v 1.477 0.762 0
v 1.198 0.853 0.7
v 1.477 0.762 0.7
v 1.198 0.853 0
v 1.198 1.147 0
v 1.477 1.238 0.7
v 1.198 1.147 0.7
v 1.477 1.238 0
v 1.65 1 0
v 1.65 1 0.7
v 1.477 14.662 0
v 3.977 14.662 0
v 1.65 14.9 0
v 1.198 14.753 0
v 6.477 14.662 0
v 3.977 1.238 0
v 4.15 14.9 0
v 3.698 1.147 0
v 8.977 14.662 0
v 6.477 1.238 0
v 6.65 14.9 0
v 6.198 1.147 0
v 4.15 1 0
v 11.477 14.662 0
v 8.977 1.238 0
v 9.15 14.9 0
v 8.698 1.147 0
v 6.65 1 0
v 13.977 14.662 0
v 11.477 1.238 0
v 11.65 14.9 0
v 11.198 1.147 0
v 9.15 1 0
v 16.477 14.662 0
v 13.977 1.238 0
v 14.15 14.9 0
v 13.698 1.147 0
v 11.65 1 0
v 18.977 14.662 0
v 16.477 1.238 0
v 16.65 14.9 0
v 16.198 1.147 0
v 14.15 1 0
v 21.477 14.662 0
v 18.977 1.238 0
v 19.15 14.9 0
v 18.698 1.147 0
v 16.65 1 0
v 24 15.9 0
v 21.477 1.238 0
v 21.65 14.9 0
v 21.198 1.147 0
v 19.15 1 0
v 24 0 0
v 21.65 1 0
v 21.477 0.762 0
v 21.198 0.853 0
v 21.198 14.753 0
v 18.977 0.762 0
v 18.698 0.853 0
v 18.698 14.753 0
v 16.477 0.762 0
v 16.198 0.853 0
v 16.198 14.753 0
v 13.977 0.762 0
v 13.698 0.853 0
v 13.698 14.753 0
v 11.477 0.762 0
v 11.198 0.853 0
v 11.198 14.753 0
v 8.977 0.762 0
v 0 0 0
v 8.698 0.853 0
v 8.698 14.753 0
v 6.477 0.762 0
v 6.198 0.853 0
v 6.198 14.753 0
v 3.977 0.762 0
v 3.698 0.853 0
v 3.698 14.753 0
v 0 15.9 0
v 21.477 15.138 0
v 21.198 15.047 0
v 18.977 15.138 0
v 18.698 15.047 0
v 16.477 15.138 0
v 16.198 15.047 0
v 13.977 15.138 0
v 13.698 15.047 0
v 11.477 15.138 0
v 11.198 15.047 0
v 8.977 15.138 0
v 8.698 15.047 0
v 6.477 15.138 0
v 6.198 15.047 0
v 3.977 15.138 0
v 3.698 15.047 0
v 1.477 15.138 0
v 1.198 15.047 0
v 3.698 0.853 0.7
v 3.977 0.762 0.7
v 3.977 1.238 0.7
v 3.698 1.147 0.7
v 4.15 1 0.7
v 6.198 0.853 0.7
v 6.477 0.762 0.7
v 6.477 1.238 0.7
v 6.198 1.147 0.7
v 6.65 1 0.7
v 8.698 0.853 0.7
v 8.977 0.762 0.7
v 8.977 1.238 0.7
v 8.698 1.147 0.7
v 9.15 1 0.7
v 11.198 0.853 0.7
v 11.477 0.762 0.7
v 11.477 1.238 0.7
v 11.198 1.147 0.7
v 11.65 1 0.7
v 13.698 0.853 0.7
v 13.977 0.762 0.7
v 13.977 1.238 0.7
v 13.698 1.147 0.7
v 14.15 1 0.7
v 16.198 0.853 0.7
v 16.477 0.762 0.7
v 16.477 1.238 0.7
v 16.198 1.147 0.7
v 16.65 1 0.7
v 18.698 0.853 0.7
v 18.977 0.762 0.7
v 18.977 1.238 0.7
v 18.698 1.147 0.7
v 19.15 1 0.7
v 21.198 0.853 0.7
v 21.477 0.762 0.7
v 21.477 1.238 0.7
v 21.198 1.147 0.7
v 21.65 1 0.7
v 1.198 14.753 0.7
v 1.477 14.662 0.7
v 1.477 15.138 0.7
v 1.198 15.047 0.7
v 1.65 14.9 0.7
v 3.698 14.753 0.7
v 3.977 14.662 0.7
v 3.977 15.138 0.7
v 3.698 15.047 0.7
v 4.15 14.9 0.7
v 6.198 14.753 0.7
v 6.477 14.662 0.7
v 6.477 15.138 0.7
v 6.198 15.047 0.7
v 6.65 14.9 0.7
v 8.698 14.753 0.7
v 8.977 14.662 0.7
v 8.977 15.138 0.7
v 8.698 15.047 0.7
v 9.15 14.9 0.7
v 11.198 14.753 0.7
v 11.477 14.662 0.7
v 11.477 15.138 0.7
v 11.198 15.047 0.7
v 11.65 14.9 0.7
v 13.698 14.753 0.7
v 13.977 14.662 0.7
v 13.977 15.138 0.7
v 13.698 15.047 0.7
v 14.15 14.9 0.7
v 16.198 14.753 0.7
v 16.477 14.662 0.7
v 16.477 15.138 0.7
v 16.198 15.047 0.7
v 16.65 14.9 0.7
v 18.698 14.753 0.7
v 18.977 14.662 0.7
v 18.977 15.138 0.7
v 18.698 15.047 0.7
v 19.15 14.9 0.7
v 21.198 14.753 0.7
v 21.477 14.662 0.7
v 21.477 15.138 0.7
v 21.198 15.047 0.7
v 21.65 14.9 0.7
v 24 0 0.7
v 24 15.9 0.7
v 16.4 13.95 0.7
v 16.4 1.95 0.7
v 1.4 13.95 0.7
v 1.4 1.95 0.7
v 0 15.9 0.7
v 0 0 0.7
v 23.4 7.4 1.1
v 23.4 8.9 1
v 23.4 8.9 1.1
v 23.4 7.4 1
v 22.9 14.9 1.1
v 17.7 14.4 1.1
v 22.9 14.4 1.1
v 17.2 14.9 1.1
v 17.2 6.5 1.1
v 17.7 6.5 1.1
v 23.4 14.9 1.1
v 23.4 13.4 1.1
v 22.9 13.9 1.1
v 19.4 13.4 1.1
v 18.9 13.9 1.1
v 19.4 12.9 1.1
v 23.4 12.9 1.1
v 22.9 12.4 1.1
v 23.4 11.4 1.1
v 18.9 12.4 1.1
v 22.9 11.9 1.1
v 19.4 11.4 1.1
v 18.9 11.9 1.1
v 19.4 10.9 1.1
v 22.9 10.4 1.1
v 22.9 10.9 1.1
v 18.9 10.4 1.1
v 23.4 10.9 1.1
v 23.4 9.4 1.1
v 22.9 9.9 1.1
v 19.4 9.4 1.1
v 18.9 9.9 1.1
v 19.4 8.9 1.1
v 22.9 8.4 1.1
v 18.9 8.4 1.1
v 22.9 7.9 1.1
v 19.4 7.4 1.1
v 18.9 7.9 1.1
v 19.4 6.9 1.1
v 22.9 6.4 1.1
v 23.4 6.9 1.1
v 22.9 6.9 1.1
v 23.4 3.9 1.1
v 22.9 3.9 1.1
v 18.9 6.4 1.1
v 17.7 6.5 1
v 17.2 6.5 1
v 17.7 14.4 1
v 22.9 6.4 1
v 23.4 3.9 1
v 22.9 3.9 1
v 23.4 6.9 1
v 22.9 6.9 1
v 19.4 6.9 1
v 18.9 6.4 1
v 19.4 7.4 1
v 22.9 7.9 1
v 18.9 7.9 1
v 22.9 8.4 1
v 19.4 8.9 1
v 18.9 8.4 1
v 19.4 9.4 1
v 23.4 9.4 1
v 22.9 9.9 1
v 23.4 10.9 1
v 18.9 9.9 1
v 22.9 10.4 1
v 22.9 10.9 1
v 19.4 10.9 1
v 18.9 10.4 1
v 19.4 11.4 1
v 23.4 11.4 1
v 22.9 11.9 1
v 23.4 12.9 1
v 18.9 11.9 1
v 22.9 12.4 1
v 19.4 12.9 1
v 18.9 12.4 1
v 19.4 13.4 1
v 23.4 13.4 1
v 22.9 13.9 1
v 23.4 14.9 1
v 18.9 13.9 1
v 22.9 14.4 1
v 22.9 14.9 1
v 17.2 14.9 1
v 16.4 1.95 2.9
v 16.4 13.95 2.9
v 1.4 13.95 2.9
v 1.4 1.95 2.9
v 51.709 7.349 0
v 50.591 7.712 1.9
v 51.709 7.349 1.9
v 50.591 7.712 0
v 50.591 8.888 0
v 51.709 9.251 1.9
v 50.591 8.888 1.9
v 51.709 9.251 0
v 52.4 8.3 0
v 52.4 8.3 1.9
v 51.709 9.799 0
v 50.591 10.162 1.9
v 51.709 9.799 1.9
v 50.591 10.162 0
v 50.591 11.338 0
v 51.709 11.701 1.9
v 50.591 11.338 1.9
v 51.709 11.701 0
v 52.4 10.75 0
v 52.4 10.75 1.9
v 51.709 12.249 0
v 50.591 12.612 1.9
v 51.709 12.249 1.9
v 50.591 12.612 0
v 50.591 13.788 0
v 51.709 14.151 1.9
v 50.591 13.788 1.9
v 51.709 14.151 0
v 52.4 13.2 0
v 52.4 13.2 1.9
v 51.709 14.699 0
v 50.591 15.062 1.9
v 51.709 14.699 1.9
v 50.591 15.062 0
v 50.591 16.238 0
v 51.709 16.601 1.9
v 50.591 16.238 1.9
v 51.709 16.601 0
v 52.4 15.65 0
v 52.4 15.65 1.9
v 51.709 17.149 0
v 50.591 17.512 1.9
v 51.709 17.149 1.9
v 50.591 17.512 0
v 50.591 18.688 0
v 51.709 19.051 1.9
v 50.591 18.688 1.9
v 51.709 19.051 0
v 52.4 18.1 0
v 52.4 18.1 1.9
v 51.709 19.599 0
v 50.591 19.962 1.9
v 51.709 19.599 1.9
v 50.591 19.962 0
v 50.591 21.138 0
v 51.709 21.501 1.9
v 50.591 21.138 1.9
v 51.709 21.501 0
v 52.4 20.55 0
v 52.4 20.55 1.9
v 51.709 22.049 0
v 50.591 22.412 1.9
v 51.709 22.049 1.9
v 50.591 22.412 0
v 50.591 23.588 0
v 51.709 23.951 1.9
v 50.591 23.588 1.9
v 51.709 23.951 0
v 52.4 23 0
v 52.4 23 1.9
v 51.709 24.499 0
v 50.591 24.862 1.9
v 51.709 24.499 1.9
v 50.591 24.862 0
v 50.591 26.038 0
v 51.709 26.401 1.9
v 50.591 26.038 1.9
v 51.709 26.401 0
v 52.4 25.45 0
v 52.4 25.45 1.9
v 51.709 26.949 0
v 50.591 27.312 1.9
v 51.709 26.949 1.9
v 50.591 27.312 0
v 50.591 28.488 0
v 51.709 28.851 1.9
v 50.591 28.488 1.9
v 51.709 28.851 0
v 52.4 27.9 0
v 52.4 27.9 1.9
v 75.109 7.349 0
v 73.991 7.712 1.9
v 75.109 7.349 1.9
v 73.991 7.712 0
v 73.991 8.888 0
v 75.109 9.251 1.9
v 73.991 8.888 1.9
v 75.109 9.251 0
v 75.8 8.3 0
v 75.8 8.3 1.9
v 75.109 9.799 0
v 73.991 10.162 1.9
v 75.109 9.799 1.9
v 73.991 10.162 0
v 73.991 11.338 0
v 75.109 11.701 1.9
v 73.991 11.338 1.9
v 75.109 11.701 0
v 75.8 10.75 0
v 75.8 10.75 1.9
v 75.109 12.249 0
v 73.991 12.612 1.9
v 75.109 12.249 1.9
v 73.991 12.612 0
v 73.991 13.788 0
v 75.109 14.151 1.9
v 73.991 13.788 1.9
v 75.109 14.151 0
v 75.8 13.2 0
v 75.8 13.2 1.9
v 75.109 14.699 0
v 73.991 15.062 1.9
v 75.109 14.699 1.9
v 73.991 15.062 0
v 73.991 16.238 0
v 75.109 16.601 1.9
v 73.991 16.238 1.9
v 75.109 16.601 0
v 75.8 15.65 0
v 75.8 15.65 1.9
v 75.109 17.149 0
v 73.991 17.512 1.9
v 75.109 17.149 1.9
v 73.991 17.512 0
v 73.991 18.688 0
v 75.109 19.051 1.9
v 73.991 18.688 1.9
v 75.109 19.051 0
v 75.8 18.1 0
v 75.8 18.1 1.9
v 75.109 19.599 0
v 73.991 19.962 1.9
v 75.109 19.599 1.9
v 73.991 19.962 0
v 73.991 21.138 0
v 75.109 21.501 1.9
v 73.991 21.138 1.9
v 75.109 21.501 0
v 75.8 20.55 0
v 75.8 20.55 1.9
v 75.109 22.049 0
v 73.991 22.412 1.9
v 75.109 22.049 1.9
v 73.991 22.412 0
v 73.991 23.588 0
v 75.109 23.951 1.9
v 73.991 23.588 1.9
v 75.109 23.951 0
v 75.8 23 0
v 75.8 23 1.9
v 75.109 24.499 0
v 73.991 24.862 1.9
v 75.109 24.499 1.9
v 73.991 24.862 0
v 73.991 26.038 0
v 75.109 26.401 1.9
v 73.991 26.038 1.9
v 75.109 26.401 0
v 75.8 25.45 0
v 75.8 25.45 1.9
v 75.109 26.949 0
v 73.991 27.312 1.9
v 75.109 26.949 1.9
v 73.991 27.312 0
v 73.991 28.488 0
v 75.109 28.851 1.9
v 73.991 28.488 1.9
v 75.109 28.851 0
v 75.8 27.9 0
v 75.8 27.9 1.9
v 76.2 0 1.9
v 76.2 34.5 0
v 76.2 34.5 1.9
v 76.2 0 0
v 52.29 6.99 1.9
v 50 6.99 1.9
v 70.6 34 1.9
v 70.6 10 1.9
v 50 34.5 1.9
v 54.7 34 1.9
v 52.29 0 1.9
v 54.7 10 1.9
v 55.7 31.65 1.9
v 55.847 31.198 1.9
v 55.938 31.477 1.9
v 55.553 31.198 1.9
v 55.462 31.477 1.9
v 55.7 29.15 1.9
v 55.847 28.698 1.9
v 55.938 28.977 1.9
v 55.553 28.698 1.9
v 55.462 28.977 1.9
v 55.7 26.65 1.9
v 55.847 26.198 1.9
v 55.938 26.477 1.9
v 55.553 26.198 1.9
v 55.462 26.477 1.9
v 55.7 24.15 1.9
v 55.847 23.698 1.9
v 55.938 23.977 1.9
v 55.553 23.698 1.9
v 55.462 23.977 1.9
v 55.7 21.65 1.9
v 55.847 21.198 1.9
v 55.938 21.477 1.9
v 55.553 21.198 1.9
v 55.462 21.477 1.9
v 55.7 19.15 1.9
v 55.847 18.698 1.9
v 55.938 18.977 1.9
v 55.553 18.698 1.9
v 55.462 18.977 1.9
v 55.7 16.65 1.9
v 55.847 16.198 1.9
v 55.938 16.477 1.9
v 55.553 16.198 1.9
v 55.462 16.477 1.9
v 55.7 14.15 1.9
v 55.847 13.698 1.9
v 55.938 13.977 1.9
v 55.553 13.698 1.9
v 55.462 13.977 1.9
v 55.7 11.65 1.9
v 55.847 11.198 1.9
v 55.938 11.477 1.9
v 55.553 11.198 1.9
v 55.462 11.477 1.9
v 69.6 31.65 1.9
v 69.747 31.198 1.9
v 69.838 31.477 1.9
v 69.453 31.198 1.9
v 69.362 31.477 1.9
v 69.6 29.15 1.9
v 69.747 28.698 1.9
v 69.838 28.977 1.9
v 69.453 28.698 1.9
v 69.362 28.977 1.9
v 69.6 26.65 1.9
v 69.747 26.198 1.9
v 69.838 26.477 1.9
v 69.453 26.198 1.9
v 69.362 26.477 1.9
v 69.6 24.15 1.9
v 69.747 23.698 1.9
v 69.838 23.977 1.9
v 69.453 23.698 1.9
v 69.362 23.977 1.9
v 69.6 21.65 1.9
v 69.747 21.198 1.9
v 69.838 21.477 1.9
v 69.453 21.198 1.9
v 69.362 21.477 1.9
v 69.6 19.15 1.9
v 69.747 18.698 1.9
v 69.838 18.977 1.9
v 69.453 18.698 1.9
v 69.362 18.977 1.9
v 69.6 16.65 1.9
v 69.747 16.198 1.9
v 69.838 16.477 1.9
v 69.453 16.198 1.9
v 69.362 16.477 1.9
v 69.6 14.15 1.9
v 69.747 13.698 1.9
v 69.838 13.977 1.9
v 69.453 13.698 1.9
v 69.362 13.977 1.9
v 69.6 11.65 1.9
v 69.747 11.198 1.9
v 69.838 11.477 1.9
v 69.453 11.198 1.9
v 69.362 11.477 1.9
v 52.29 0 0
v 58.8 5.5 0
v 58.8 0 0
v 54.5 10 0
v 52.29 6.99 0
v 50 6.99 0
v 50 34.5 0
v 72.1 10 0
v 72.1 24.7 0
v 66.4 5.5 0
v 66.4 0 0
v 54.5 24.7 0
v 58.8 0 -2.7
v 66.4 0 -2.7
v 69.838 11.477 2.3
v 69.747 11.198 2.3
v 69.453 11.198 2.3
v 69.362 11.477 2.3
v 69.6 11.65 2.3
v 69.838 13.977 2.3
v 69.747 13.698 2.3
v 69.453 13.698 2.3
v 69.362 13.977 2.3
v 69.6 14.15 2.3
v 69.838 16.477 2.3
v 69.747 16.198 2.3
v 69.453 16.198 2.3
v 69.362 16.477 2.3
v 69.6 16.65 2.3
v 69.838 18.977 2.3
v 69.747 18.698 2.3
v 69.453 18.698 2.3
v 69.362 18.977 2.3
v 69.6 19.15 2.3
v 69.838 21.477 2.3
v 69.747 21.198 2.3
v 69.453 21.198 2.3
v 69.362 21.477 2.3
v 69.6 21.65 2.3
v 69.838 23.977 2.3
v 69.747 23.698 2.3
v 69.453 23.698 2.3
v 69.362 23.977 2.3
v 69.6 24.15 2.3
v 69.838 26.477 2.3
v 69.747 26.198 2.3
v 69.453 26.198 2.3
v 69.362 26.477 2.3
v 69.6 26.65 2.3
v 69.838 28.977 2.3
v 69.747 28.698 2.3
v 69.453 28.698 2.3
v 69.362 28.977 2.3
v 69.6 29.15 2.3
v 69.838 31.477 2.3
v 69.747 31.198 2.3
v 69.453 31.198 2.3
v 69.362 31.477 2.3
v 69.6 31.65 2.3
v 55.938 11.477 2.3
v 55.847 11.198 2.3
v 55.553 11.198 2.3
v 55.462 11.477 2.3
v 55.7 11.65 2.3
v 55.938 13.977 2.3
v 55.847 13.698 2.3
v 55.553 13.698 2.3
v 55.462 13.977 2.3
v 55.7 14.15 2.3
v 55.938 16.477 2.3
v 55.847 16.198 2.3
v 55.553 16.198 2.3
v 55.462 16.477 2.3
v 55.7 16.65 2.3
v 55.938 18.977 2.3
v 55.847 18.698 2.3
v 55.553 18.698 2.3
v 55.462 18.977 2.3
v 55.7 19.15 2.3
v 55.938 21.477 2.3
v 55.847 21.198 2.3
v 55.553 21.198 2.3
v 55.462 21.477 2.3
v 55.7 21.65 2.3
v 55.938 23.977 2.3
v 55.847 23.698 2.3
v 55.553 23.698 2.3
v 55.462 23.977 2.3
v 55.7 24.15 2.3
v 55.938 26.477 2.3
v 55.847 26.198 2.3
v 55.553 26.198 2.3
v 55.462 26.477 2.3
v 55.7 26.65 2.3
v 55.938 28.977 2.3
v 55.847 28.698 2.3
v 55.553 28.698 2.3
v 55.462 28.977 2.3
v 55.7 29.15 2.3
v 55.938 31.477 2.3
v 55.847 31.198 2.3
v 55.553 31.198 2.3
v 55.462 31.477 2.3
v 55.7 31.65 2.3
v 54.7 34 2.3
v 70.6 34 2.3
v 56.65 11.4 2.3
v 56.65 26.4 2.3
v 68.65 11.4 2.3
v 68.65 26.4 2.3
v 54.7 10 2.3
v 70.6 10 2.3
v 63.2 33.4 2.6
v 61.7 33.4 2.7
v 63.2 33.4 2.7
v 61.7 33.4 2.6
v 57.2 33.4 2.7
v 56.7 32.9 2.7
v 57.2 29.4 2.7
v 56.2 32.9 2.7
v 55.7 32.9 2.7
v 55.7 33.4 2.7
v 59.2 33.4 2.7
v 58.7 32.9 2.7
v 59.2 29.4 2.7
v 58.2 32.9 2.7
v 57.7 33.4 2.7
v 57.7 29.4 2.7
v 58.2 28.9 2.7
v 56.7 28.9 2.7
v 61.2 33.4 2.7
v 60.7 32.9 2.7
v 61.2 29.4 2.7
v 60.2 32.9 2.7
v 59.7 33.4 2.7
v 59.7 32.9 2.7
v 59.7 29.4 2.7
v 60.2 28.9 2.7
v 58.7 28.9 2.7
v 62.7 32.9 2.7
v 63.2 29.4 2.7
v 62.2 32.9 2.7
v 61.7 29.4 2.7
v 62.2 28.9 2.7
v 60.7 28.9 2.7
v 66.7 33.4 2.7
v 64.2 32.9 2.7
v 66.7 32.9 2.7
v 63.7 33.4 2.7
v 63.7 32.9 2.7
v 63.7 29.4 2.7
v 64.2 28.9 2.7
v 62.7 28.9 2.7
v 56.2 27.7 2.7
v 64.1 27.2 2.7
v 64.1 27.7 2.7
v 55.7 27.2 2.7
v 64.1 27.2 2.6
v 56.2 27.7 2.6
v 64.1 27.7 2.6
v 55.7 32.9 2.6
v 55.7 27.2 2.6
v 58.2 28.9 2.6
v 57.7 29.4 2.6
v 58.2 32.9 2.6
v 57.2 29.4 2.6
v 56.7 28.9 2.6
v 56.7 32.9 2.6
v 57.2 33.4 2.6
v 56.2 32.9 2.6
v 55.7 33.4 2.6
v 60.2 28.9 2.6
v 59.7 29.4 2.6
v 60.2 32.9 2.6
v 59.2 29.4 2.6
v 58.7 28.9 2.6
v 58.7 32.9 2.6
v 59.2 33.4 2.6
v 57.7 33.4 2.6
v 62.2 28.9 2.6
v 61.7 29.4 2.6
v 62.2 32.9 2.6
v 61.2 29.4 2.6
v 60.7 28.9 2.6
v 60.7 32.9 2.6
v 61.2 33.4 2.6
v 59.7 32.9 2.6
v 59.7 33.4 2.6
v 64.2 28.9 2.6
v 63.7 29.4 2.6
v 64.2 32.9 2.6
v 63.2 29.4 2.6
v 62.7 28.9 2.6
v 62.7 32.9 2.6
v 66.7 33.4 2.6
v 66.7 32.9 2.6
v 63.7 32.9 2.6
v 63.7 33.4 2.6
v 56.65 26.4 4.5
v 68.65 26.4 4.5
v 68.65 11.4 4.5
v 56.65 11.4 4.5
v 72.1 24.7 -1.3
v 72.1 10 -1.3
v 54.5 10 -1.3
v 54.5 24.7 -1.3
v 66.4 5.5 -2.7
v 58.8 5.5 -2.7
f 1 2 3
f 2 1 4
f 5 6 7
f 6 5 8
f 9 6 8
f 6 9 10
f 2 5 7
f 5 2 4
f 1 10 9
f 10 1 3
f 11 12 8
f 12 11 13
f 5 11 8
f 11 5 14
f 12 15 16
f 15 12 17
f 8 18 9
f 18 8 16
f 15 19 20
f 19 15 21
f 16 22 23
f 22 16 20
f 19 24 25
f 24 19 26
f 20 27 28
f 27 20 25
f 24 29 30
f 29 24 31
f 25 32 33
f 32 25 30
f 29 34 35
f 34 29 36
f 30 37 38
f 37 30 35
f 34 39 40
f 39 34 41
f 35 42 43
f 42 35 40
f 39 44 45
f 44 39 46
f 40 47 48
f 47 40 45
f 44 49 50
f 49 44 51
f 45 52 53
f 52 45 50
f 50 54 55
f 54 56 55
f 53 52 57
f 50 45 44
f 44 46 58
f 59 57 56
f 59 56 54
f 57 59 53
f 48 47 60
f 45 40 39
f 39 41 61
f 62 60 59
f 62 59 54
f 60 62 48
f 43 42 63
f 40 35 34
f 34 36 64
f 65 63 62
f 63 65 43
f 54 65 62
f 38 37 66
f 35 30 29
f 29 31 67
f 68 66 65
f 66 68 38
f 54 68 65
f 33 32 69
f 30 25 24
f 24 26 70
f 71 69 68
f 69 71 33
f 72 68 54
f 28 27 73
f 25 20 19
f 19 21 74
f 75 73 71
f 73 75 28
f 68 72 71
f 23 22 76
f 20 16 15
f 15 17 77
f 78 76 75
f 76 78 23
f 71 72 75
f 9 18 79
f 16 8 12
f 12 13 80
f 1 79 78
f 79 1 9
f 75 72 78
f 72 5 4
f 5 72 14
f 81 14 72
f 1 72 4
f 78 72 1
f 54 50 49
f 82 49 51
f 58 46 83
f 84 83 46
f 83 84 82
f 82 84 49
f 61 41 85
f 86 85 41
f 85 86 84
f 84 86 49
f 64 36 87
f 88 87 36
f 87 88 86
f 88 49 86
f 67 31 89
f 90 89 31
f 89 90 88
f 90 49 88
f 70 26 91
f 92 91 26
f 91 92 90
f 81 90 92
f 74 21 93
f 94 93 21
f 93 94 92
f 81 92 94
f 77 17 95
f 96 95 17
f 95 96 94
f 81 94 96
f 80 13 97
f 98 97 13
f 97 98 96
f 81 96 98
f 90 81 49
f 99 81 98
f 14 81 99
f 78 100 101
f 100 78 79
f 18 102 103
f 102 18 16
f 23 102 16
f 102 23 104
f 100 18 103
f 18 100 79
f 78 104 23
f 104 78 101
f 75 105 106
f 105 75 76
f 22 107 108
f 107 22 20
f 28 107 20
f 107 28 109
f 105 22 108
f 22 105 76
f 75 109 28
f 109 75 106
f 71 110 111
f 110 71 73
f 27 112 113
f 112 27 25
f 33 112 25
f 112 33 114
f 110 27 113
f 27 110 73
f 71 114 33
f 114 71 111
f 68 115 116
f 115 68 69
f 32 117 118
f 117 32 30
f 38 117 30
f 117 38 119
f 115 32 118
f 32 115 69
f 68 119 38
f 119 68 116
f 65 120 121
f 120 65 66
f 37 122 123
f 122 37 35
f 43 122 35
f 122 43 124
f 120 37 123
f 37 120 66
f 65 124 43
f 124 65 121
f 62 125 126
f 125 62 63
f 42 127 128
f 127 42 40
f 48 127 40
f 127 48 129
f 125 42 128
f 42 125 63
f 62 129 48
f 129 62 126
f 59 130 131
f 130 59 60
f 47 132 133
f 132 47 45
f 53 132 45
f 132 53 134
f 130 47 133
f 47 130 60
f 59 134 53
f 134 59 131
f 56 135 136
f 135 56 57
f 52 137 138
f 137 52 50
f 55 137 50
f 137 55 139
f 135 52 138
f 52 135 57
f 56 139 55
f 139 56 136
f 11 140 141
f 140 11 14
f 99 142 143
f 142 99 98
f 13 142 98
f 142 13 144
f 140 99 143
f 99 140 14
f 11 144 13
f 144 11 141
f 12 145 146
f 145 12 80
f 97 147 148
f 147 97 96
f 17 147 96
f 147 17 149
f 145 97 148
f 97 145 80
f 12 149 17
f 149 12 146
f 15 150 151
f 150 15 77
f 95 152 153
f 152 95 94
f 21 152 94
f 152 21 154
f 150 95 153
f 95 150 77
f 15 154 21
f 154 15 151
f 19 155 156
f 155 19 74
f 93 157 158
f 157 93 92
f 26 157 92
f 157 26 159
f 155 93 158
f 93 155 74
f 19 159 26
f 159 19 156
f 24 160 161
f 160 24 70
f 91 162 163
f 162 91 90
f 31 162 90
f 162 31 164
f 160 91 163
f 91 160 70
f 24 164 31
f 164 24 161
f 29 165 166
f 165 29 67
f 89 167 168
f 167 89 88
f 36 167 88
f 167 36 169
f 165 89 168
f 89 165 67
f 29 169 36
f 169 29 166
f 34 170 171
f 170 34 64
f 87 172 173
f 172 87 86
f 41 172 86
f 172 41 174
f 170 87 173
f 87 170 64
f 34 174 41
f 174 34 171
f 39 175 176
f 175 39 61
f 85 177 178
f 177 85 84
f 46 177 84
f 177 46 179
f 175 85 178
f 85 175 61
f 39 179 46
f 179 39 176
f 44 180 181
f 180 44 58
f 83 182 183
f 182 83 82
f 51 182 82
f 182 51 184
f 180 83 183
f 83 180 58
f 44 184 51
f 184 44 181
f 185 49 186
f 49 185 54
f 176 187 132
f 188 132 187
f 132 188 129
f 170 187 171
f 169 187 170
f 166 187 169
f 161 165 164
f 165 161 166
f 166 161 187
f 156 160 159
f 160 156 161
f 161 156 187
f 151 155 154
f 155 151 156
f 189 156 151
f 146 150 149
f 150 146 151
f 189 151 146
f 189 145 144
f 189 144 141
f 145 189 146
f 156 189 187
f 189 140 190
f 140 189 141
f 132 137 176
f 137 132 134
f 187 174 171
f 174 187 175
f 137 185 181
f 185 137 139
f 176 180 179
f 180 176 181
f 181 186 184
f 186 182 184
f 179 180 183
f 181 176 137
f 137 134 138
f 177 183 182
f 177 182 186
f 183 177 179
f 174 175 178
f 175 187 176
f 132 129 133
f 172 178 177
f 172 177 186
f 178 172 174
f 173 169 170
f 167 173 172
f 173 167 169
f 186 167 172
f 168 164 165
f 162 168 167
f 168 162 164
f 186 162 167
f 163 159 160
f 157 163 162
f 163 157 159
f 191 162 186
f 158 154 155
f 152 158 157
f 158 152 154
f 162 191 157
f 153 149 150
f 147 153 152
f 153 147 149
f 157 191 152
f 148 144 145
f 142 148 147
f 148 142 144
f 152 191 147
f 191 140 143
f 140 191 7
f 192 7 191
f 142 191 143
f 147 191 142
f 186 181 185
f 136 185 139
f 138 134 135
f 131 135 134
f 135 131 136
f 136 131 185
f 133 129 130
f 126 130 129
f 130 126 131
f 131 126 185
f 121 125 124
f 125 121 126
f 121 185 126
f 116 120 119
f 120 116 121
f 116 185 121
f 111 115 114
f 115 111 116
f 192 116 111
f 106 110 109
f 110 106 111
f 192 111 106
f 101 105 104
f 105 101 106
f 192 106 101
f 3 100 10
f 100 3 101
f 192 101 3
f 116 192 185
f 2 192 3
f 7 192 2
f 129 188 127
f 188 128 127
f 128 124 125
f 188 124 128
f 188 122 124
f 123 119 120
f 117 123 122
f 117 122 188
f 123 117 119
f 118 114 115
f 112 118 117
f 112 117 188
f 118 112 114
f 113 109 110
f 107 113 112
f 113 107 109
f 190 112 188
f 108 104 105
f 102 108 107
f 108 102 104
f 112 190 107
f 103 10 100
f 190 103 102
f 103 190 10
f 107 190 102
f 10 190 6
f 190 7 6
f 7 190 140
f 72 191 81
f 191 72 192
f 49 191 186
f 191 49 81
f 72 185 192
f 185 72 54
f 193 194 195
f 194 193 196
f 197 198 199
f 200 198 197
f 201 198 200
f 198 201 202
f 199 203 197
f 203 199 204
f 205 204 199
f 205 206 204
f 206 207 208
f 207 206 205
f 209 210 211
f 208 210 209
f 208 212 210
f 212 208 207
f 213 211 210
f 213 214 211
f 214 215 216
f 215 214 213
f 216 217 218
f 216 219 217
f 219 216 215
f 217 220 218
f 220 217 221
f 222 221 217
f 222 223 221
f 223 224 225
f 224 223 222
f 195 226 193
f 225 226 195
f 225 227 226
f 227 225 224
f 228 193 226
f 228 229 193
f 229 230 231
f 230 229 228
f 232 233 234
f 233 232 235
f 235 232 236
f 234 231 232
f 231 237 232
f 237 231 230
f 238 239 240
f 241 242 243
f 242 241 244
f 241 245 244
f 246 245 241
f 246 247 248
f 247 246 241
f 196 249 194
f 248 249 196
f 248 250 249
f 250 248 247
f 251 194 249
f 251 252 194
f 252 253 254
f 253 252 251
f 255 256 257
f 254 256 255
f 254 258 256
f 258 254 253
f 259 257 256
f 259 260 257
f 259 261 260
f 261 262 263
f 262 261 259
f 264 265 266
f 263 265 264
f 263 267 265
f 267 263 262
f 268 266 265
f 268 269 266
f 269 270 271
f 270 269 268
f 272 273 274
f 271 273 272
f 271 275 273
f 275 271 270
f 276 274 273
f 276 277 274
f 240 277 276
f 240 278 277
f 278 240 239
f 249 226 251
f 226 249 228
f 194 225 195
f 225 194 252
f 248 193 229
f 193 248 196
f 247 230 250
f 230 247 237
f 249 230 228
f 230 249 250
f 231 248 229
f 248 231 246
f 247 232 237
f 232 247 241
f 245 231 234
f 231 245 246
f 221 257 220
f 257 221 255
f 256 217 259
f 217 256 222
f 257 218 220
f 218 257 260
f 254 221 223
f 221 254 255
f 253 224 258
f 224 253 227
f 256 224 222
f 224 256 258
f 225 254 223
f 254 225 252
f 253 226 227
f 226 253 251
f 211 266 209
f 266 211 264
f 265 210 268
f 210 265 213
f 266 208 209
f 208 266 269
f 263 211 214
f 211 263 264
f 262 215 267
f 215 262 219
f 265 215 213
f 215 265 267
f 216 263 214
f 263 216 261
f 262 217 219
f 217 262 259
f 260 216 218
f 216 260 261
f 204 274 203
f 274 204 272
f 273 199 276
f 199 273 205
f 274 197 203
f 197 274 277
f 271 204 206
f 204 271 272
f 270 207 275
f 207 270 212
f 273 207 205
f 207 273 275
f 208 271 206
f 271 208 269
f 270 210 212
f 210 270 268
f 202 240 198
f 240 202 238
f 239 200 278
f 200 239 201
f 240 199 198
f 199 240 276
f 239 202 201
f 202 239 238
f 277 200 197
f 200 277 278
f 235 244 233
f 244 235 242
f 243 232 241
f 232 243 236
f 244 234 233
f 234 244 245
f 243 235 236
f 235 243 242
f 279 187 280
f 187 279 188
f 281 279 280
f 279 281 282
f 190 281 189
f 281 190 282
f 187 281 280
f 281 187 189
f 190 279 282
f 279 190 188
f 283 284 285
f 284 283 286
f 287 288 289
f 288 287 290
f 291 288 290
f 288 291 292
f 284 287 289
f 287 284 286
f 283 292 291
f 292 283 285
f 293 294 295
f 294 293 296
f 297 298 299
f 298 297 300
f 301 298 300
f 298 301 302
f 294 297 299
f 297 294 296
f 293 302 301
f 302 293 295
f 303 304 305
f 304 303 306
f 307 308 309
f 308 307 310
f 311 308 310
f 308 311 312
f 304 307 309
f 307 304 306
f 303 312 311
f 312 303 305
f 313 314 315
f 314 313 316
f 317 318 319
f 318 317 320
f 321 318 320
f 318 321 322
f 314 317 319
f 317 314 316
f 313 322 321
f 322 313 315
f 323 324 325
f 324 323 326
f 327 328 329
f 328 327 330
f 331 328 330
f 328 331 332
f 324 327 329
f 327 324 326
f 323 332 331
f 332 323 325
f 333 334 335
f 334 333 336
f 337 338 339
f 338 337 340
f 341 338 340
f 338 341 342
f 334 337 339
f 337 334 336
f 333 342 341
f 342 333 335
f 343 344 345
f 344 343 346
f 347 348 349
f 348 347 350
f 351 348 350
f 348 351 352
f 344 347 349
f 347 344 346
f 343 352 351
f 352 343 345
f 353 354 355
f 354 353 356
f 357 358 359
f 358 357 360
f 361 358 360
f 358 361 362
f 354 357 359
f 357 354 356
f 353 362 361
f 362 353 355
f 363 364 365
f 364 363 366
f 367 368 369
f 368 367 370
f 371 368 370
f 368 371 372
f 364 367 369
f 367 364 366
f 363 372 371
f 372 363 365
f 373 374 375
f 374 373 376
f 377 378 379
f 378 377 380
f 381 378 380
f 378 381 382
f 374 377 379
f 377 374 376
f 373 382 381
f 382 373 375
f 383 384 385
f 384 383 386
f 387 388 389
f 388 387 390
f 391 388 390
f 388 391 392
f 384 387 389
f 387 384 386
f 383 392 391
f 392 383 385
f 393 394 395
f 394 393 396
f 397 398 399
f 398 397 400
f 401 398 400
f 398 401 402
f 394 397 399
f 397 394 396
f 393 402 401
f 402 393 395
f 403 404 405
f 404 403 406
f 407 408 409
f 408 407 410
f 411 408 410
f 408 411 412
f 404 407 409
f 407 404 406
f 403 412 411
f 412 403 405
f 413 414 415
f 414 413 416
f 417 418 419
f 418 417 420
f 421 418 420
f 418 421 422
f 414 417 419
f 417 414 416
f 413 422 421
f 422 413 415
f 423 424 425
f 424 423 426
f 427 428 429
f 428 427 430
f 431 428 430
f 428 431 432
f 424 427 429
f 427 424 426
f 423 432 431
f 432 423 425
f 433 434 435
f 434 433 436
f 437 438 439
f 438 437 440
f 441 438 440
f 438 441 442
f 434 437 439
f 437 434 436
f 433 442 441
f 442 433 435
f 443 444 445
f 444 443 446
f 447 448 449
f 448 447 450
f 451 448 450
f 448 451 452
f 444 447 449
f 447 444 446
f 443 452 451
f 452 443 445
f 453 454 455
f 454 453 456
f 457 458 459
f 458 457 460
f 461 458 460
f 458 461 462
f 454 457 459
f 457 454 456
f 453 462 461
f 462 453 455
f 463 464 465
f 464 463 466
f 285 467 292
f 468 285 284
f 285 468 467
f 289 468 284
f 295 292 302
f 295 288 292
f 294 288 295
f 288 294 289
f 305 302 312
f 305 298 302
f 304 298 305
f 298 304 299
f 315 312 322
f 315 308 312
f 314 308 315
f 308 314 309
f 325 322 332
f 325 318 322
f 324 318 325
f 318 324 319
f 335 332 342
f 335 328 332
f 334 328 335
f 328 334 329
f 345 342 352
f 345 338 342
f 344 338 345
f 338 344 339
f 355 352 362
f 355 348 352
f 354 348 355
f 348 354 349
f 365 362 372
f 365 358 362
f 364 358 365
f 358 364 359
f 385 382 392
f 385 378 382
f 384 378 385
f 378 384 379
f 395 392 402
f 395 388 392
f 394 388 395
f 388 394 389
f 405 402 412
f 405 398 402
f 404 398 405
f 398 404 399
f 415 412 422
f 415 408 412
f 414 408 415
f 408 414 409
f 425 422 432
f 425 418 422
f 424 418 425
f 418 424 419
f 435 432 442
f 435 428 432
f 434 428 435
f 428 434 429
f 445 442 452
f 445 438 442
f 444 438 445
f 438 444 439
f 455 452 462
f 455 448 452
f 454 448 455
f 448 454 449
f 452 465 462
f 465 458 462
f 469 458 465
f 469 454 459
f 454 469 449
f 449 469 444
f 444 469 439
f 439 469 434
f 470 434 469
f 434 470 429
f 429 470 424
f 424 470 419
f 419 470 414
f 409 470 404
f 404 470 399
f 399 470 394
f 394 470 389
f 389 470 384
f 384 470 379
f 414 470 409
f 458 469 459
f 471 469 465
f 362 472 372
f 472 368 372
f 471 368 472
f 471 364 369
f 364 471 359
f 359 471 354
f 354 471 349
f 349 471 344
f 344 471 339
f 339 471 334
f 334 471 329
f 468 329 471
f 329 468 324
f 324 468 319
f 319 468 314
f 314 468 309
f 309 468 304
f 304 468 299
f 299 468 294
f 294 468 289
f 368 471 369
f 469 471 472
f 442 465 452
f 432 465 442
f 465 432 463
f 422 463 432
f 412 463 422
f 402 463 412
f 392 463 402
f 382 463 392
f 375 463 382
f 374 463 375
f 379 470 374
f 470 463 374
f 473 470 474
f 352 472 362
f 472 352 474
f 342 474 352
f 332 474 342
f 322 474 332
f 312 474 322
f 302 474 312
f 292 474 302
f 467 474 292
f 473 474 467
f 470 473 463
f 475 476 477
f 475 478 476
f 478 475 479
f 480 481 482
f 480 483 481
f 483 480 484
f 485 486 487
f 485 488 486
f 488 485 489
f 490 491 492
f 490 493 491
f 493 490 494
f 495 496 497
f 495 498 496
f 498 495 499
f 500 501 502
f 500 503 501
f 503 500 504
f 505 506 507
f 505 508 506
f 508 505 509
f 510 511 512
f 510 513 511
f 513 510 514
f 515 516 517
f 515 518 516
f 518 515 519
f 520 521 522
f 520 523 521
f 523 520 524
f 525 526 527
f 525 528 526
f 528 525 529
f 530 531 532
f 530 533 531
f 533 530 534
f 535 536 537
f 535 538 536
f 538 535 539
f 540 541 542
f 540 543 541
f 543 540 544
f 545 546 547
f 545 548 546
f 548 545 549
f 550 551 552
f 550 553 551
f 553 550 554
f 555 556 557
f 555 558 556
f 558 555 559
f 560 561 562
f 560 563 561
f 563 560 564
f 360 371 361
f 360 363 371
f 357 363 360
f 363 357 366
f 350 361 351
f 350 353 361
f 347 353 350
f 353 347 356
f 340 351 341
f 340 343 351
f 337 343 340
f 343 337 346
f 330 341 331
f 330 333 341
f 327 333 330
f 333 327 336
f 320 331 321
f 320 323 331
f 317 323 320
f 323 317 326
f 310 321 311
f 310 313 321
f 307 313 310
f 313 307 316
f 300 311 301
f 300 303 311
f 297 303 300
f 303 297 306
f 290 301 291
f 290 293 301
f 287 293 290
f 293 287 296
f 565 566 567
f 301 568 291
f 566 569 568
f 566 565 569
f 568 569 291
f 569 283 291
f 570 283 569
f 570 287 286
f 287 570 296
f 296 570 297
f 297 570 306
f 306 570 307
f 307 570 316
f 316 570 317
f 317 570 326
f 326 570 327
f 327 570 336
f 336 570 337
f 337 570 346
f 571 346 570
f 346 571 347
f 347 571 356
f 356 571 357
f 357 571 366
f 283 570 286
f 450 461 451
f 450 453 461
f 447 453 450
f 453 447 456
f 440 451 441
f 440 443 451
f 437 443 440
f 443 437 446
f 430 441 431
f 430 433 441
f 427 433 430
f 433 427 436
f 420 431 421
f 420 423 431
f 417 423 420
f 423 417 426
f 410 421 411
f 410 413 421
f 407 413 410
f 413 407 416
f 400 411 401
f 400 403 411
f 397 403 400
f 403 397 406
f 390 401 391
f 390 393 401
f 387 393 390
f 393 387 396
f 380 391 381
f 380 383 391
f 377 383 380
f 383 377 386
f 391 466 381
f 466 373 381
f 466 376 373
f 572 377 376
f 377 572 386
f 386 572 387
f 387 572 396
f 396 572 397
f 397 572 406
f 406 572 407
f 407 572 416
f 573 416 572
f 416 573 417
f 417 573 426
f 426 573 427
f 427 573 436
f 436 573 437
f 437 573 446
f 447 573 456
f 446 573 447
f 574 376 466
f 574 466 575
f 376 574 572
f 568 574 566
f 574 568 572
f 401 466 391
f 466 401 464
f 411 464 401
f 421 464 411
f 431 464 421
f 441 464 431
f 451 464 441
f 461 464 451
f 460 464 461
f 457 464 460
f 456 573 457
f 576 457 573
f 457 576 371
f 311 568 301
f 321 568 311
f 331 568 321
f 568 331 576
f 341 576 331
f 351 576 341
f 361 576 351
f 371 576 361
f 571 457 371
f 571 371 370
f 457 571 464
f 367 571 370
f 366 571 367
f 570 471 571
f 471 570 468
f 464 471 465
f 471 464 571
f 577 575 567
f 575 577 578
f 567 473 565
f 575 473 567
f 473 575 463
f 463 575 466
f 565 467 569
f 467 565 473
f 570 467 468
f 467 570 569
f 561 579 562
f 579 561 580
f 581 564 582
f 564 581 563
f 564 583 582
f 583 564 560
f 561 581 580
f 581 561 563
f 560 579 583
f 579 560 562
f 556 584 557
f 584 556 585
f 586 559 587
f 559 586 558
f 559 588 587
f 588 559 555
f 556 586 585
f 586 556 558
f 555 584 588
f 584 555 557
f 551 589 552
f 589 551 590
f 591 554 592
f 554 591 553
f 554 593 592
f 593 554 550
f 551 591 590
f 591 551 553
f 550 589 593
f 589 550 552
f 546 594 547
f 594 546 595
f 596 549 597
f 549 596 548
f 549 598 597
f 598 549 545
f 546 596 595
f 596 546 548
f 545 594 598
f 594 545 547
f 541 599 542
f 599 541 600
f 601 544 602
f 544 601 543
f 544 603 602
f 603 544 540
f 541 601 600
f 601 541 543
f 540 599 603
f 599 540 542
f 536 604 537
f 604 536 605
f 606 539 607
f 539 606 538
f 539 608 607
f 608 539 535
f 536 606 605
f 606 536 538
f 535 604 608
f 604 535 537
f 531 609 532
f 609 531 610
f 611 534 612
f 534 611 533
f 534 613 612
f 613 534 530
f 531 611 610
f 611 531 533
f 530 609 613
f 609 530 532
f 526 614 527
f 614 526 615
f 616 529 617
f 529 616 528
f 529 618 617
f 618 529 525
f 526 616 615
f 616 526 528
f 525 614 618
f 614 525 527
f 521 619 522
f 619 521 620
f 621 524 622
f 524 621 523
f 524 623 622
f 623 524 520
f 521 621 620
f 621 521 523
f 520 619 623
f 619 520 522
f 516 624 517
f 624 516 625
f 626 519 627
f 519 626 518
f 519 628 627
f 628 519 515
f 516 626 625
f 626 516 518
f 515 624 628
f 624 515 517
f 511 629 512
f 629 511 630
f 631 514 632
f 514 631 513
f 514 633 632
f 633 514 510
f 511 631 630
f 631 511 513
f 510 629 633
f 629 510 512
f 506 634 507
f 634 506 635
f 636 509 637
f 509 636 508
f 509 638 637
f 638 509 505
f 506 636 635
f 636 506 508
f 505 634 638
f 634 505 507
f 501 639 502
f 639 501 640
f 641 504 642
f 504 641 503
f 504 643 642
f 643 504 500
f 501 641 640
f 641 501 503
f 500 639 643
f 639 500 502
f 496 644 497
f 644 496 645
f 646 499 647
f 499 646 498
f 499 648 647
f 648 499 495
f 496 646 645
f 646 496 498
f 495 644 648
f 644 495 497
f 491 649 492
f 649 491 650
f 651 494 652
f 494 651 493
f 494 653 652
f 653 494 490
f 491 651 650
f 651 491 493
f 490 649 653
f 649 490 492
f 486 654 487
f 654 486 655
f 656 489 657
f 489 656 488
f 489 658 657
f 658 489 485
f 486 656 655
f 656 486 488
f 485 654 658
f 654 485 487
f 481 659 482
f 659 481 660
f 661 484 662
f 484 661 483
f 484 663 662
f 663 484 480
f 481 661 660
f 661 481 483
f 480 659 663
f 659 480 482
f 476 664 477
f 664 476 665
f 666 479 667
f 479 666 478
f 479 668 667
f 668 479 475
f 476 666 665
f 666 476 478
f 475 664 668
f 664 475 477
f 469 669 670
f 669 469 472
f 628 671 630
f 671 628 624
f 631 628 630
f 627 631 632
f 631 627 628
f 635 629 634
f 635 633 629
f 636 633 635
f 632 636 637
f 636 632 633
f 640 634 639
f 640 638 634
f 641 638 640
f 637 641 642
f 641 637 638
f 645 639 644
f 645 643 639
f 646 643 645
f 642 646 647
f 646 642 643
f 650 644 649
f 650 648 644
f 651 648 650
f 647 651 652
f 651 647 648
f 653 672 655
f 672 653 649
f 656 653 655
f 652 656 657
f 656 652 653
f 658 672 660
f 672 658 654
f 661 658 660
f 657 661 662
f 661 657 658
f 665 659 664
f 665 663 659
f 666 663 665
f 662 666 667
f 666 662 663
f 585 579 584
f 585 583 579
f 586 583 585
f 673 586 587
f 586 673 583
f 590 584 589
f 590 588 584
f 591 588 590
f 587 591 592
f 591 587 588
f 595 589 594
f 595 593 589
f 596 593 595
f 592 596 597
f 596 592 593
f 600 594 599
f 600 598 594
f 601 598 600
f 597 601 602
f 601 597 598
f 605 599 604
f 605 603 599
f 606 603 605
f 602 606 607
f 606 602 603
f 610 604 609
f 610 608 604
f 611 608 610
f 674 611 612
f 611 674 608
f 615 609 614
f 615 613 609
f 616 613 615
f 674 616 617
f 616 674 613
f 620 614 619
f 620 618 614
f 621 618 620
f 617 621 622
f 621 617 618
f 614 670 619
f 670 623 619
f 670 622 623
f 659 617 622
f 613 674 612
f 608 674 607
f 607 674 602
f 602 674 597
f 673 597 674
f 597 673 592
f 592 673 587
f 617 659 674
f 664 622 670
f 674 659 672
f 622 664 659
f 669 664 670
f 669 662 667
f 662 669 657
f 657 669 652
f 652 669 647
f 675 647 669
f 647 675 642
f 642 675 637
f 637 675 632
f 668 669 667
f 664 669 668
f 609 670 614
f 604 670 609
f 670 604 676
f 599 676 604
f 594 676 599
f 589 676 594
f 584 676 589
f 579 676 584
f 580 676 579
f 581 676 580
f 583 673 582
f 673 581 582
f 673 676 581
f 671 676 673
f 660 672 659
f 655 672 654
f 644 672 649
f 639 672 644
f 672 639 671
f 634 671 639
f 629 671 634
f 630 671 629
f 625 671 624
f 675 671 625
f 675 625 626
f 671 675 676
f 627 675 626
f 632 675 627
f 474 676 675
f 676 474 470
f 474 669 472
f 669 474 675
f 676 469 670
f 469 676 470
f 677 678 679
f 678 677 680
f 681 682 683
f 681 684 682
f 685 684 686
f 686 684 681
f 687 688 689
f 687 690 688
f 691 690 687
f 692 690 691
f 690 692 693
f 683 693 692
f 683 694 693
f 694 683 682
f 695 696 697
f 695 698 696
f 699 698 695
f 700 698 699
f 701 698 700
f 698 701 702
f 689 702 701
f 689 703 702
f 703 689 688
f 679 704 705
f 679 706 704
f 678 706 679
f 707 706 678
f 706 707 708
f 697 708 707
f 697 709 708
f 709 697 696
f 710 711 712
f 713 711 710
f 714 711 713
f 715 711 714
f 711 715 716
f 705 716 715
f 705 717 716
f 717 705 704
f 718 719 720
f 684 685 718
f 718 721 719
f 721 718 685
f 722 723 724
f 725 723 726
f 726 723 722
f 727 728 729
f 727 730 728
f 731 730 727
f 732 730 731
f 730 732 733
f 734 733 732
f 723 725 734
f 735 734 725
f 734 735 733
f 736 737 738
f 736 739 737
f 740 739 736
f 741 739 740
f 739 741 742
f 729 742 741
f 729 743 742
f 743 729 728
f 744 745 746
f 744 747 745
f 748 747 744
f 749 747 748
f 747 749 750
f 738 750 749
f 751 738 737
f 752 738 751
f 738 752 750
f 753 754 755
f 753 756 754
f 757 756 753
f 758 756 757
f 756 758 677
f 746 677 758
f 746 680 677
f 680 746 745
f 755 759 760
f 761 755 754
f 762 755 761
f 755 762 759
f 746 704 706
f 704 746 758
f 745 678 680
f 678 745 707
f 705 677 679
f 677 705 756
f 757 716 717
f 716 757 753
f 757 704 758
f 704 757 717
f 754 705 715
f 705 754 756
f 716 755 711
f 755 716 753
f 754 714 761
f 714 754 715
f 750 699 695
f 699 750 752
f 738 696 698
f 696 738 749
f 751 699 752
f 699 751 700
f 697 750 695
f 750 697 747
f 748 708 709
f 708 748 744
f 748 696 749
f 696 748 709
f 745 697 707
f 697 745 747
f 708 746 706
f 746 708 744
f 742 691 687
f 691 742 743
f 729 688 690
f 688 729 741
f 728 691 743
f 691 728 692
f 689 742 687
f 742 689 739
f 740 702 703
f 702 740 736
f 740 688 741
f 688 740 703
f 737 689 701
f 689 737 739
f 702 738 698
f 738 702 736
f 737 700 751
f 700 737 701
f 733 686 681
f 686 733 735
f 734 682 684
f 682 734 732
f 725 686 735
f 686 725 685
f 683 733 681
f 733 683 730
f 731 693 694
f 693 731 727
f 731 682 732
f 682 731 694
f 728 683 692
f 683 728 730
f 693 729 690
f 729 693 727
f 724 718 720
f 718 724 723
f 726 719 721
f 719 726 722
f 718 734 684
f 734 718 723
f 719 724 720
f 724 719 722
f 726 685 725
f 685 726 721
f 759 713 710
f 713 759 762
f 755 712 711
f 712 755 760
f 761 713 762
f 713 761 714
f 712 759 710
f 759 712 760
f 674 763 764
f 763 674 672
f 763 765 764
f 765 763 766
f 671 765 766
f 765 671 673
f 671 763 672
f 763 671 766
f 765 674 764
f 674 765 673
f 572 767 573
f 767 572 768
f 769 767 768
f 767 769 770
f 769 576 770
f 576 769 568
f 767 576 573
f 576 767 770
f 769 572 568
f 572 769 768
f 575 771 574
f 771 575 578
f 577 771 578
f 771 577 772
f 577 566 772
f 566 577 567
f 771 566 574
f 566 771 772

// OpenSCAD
//
grundPlatineX=24;
grundPlatineY=15.9;
grundPlatineZ=0.7;

ESP12();


translate([50,0,0]) WemosD1Mini();

module WemosD1Mini(){
    // PCB
    pcb=[26.2,34.5,1.9];
    difference(){
        cube(pcb);
        
        // cut out Reset Switch
        resetSW=[2.3,7.0,3+.1];
        translate(-0.01*[1,1,1])
            cube(resetSW);

        for (x=[1.4,pcb[0]-1.4])
            for (y=[8.3:2.45:28.0])
                translate([x,y,-.1])
                    color("silver")
                        cylinder(r=1,h=4);
    }
    
    // ICs
    translate([4.5,10,-1.3])
        color("silver")
            cube([17.6,14.7,1.3]);

    // USB Plug
    translate([8.8,0,-2.7])
        color("silver")
            cube([7.6,5.5,2.7]);
    
    translate([grundPlatineY+4.7,10,1.6])
        rotate([0,0,90])
            ESP12();

}

module ESP12(){
    ESP12GrundPlatte();
    translate([1.4,(grundPlatineY-12)/2,grundPlatineZ])
        EspCap();
    translate([grundPlatineX-6.8,2.1,1])
        Antenne();
}
module pinRow(numberPins=15){
    pinBaseThickness=2.4;
    for (i=[1:numberPins]){
        translate([i*pinBaseThickness,0,0]){
            mirror([0,0,90])Pin(    pinBaseThickness=    pinBaseThickness);
    }
}

module Pin( pinBaseThickness=2.4,
            pinBaseHeight=2.6,
            pinHeight=8.5,
            pinThickness=0.5 ){
            color("black")
                cylinder(d=pinBaseThickness,h=pinBaseHeight);
            color("yellow")
                cylinder(d=pinThickness,h=pinHeight);
        }
    }
    
module Antenne(){
    color("gold"){
        b=0.5;
        d=.1;
        translate([0,4.4,0]) cube([b  ,7.9,d]);
        translate([0,12.3,0]) cube([6.2,b ,d]);

        for(i=[0:3]){ // wagerechte
            translate([1.7,4.3+i*2,0]) {
                translate([4.0,  1,   0]) cube([b  ,b+1,d]); // rechts
                translate([0,    1,   0]) cube([4.0  ,b,d]); // wagerecht
                translate([0,    0,   0]) cube([b  ,b+1,d]); // links
                translate([0,    0,   0]) cube([4.0  ,b,d]); // wagerecht
                }
        }
        translate([5.7,  1.8,   0]) cube([b  ,3,d]); // rechts
    }
}

module ESP12GrundPlatte(){
    difference(){
        color("green")
            cube([grundPlatineX,grundPlatineY,grundPlatineZ]);

    randAbstand=1.0;
    translate([1.4,randAbstand,0])
        HoleRow();
    translate([1.4,grundPlatineY-randAbstand,0])
        HoleRow();
    }
}

module EspCap(){
    color("silver")
            cube([15,12,2.2]);
}

module HoleRow(count=8){
    lochAbstand=2.5;
    for (i=[0:count]){
        translate([i*lochAbstand,0,0])
            Hole();
     }
}

module Hole(){
    cylinder(d=0.5,h=2);
}
